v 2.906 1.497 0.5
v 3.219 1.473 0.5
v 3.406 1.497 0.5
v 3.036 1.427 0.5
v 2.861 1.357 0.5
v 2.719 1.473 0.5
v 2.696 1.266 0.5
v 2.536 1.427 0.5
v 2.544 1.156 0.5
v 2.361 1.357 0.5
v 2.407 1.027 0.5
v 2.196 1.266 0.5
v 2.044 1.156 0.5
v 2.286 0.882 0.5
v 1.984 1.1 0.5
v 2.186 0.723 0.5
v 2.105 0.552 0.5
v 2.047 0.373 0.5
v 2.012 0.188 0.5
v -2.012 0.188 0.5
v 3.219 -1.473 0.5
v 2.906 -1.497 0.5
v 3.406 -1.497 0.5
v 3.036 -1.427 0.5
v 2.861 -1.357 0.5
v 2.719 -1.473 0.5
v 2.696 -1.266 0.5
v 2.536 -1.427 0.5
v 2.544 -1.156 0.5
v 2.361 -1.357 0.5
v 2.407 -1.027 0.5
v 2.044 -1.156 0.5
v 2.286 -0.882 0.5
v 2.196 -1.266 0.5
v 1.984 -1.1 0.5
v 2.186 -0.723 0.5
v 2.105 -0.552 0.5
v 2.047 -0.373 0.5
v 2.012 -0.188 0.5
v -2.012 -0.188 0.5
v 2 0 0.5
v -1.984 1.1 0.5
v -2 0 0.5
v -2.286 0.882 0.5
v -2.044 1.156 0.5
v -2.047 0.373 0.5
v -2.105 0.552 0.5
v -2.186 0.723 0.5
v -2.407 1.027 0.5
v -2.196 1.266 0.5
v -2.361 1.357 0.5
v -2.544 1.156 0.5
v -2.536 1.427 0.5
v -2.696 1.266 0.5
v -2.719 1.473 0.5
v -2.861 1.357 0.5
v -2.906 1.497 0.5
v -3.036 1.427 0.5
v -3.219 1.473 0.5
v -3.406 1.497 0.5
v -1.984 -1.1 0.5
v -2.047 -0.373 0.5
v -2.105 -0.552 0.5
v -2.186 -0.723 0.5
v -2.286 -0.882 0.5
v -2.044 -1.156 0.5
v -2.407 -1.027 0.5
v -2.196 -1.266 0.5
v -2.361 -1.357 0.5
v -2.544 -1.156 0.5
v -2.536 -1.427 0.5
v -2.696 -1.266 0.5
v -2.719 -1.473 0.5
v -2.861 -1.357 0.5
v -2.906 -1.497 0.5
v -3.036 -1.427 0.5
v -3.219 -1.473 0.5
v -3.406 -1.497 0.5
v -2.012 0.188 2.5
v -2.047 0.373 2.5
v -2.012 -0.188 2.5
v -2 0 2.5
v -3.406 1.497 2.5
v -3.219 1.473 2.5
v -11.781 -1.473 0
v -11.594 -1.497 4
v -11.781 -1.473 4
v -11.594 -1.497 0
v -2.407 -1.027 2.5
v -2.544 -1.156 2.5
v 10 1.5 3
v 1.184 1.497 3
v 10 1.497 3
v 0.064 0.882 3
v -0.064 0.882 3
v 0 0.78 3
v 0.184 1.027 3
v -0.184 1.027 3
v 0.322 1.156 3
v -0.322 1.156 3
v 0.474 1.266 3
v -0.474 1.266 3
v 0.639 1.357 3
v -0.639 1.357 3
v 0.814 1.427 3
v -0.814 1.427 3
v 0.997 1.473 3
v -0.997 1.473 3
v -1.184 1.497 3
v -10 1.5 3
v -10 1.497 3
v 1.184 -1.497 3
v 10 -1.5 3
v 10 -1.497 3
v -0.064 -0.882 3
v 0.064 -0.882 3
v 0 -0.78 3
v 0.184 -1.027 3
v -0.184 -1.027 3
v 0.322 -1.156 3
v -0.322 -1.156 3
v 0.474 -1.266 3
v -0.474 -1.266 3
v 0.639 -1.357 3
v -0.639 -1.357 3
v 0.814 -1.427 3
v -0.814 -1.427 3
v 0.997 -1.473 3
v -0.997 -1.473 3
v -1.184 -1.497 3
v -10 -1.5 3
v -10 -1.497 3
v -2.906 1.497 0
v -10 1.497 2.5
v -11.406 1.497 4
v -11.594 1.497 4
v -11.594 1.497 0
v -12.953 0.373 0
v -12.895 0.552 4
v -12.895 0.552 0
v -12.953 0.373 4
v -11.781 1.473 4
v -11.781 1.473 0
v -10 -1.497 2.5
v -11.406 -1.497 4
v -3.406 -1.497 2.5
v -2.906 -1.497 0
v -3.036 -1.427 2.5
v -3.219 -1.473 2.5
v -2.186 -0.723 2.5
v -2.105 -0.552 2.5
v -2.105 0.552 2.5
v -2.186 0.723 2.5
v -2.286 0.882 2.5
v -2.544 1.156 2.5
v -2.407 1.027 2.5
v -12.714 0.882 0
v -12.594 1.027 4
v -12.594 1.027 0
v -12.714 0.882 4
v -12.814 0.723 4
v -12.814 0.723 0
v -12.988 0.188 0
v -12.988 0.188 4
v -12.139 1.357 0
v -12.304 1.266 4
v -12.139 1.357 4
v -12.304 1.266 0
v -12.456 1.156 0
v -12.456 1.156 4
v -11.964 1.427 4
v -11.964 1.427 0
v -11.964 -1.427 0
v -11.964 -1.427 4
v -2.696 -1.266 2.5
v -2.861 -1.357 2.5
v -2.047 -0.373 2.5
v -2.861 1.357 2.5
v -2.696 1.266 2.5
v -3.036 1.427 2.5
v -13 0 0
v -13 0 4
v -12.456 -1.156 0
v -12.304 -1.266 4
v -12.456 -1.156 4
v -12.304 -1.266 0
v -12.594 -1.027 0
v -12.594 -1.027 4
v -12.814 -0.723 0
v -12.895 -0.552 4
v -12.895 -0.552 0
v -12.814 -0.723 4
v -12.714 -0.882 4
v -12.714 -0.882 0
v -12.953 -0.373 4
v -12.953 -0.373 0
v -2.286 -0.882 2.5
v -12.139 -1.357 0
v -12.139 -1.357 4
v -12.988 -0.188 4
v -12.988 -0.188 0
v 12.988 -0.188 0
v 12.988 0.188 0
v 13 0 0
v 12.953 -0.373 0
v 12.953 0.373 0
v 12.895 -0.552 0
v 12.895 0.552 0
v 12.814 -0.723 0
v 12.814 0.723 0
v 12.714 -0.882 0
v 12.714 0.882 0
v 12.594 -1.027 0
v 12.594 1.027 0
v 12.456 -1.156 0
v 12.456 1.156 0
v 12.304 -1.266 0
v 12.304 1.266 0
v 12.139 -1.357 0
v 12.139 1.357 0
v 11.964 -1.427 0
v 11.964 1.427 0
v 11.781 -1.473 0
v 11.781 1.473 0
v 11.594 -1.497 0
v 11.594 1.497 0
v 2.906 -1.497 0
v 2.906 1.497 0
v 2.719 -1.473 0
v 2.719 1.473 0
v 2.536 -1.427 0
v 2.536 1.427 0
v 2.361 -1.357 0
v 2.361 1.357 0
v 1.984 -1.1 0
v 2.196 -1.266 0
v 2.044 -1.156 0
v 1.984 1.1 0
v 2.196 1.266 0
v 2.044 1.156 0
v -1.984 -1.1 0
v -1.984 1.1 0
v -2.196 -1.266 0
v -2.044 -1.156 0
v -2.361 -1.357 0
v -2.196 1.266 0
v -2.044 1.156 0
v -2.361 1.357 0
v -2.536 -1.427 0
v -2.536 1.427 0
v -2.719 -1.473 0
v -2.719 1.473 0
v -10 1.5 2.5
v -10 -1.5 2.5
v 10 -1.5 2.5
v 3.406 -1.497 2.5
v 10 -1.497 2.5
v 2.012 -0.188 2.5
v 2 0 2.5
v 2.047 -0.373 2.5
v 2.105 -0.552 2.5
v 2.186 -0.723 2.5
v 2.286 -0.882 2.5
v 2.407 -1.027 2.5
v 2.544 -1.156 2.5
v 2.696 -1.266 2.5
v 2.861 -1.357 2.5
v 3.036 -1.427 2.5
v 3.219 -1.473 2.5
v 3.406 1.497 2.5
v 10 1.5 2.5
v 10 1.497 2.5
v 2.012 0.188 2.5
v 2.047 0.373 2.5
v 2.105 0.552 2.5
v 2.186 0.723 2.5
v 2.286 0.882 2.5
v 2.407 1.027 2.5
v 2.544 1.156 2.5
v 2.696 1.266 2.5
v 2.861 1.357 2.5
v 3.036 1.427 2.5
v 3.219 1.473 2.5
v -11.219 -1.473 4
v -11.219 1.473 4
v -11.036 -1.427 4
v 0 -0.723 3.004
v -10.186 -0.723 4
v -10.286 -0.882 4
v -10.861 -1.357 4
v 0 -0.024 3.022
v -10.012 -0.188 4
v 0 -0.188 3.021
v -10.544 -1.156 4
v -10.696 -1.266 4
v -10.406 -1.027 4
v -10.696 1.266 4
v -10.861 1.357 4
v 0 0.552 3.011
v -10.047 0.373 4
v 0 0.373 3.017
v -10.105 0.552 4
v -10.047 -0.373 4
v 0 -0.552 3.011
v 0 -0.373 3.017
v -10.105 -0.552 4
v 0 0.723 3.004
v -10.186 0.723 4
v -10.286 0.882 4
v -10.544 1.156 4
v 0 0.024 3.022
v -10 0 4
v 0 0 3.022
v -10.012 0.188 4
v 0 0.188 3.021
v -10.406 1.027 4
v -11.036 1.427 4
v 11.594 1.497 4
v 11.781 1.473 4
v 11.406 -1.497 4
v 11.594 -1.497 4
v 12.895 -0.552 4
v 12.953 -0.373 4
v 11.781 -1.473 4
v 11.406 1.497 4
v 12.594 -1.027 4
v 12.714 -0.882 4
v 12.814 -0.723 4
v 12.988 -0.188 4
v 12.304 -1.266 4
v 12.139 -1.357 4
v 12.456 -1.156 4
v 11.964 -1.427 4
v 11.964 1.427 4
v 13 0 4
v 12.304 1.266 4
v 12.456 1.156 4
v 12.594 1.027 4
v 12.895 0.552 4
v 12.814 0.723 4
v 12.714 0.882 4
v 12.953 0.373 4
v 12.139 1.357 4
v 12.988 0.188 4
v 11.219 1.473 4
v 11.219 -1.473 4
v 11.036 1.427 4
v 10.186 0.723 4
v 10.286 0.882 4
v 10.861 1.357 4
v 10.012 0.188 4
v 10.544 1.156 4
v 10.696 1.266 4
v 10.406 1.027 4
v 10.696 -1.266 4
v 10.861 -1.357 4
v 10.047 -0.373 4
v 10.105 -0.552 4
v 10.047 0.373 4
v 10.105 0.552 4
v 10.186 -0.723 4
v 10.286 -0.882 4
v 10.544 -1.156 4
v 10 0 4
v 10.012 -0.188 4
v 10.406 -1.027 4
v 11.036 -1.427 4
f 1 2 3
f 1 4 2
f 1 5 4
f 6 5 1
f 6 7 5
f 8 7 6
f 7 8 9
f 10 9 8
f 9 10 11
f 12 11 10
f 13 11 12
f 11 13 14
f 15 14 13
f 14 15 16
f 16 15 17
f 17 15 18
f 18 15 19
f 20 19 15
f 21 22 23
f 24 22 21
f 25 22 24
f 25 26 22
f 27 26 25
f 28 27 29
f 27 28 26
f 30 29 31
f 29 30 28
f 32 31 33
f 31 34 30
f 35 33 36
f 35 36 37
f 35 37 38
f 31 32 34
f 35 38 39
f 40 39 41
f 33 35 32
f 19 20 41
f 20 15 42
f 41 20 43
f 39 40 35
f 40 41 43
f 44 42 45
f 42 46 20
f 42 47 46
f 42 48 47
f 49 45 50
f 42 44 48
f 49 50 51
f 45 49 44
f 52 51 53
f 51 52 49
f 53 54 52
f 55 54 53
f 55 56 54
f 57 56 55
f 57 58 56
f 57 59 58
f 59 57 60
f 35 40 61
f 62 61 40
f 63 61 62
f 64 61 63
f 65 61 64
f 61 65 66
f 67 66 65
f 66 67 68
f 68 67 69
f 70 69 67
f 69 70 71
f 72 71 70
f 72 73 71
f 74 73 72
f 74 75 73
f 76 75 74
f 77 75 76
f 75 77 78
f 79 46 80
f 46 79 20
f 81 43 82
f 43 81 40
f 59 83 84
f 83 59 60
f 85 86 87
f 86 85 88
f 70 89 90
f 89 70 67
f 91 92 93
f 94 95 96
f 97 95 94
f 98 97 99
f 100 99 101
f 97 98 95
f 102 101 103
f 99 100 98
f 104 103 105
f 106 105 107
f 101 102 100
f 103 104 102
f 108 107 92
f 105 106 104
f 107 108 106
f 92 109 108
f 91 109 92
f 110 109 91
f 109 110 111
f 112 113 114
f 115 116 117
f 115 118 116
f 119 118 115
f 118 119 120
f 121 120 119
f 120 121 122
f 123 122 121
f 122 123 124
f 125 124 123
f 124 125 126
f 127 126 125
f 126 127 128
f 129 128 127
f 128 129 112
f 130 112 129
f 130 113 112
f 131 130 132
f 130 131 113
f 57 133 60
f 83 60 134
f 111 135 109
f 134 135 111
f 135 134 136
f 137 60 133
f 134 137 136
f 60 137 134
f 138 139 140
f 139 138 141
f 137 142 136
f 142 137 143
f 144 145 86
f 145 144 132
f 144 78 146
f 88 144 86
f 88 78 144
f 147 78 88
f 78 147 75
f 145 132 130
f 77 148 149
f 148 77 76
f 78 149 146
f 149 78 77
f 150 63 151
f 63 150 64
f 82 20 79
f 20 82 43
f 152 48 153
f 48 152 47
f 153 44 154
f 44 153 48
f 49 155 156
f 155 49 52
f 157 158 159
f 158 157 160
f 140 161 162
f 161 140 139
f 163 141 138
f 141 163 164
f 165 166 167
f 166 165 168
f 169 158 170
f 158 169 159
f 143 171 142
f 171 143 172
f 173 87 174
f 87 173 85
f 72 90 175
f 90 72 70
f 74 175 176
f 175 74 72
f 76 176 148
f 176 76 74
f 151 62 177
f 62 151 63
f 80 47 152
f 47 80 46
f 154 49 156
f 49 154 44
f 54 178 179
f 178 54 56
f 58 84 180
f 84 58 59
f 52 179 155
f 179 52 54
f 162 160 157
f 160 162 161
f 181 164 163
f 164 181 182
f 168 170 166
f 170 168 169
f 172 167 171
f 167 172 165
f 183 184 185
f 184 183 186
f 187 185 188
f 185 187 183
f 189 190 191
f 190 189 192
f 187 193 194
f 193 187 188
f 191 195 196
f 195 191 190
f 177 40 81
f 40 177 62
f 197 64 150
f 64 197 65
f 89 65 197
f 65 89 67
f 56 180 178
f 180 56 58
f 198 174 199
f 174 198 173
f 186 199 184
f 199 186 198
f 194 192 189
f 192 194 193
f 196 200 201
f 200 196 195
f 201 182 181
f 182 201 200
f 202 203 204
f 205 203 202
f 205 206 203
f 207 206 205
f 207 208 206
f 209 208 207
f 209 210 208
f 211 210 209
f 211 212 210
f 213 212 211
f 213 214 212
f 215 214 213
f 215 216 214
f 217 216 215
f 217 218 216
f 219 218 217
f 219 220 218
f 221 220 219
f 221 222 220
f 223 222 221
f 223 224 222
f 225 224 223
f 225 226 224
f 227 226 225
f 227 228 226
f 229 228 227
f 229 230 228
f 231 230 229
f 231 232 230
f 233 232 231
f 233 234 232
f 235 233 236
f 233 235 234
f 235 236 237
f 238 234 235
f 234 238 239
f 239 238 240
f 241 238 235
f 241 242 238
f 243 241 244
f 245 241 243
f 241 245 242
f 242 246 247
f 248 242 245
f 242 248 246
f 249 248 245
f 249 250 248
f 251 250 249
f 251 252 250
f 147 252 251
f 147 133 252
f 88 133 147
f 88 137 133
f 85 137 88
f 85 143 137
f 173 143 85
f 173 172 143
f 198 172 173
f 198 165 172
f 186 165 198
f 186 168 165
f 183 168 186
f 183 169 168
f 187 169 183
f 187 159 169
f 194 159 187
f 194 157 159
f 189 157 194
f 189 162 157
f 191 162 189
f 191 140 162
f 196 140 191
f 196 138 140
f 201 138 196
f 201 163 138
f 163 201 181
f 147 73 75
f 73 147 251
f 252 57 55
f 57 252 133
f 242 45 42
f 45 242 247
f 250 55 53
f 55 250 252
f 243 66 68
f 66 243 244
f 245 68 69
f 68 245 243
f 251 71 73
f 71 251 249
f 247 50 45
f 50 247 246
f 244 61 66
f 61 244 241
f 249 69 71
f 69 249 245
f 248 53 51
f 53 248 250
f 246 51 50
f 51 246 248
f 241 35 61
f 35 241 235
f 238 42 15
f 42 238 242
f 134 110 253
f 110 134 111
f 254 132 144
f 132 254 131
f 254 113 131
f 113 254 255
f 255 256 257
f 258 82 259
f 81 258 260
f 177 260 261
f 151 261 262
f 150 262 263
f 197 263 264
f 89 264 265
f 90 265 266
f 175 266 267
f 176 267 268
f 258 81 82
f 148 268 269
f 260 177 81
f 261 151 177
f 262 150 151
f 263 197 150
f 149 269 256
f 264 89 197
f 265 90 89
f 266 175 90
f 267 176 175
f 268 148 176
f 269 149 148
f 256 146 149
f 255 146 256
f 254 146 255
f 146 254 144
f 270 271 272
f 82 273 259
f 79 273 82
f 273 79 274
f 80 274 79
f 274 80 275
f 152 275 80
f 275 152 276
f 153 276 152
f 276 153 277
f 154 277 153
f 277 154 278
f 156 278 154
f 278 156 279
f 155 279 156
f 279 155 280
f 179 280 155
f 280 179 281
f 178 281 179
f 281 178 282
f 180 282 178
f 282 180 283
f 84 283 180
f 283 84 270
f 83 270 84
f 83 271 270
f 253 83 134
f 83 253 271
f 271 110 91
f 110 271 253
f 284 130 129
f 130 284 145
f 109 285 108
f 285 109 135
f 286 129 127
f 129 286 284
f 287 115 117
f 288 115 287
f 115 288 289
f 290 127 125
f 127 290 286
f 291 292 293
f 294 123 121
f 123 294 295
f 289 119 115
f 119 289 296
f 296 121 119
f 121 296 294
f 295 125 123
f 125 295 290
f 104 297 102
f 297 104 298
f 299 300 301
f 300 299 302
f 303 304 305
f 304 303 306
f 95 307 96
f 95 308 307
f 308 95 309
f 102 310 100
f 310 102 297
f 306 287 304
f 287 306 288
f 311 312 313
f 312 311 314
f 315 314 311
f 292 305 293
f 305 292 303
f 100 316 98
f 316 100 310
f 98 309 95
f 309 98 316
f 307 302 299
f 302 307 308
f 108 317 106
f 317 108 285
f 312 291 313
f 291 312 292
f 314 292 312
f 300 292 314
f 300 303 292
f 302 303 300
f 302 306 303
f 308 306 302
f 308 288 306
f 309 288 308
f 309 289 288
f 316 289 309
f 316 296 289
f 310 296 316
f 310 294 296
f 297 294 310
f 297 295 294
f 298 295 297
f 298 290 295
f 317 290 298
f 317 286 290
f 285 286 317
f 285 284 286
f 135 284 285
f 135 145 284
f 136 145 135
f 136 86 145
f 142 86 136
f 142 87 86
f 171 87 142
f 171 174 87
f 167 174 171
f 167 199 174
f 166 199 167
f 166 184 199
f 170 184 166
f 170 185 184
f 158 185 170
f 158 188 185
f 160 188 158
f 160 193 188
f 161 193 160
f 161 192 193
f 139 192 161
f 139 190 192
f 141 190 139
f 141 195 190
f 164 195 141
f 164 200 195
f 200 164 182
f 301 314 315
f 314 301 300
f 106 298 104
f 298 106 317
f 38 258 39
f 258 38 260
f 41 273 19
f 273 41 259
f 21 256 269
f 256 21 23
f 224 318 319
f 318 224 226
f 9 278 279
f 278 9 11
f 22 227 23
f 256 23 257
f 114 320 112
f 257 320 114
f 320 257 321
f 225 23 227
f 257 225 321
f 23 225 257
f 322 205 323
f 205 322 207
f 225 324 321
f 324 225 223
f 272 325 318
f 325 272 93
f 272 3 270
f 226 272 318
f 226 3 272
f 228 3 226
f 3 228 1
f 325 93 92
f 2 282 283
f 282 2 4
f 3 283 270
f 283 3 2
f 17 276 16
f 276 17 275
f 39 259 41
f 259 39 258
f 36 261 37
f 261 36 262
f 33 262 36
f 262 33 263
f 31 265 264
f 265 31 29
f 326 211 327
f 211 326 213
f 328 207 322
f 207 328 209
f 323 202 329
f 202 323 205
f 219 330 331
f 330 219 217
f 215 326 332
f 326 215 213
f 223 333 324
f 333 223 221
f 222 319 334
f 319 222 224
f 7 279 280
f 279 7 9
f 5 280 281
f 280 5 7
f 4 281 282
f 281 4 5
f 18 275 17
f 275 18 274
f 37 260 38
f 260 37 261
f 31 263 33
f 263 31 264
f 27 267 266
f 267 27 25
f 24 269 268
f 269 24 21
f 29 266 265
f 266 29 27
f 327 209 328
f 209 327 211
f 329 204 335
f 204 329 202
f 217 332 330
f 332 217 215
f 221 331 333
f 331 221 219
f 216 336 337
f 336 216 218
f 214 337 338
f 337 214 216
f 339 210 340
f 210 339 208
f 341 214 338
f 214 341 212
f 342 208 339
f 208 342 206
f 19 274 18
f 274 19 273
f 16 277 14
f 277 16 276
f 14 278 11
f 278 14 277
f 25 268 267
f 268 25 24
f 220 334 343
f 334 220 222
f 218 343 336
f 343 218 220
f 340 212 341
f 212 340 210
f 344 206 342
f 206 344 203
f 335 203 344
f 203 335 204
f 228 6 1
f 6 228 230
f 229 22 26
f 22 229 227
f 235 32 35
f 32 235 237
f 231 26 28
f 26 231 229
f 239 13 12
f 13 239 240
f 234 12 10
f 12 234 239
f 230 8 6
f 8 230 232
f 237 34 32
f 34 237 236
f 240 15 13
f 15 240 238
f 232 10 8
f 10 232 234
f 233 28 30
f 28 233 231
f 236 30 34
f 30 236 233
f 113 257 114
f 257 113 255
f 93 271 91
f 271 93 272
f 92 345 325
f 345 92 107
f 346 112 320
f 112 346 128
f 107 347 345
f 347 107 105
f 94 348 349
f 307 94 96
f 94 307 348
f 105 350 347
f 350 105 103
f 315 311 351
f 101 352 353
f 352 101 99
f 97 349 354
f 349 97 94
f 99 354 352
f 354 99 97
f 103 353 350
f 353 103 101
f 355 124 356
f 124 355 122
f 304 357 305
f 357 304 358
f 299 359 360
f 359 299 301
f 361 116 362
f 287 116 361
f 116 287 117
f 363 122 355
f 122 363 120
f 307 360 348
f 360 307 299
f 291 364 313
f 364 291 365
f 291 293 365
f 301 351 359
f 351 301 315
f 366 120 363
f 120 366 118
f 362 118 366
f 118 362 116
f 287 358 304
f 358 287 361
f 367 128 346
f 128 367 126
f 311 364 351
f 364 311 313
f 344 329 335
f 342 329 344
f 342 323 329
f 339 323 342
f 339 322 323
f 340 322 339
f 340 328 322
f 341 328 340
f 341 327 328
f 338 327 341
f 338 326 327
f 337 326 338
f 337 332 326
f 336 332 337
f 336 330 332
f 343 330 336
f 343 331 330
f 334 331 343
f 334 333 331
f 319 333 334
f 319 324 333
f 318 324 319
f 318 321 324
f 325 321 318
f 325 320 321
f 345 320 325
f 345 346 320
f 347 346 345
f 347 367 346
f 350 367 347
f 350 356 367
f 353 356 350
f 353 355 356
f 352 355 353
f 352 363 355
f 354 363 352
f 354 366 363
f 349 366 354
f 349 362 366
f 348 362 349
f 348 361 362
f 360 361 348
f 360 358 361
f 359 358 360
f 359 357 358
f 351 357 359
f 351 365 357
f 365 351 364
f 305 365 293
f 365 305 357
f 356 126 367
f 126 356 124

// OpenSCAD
$fn=50;



thick = 0.5;
buttond = 2.5;
buttontopw = 2.5;
buttonholel = 26;

inner_ledge = 3;

module button_presser()
{
    pressorw = 10;
    // Fingerpad
    translate([0,0,thick])
    hull()
    {        
        dia = 3.0;
        translate([inner_ledge/2 + dia/2 + 0.5,0,0])
            cylinder(d=dia, h=buttond);
        translate([buttonholel/2 - dia/2 ,0,0])
            cylinder(d=dia, h=buttond);
    }
    // Base
    translate([0,0,0])
    hull()
    {        
        dia = 3.0;
        translate([inner_ledge/2 + dia/2,0,0])
            cylinder(d=dia, h=thick);
        translate([buttonholel/2 - dia/2,0,0])
            cylinder(d=dia, h=thick);
    }
    // Strip
    translate([5,0,thick/2])
        cube([10,2.2,thick], center=true);
    // Bridge
    translate([5,0,buttond+thick/2])
        cube([10,3,thick], center=true);
    // Fingerpad
    translate([0,0,buttond])
    hull()
    {        
        dia = 3.0;
        translate([0,0,(thick/2)/2])
            cylinder(d1=dia, d2=3, h=thick/2);
        translate([buttonholel/2 - dia/2,0,(thick*2)/2])
            cylinder(d1=dia, d2=3, h=thick*2);
    }   
}

rotate([0,0,0])
{
    if (0)
    %translate([0,0,buttond/2])
        cube([3,2,buttond], center=true);
    if (0)
    %translate([0,0,buttond+1])
        cube([buttonholel,3,0.2], center=true);

    // pressor
    rotate([0,0,180])
        button_presser();
    rotate([0,0,0])
        button_presser();

}
